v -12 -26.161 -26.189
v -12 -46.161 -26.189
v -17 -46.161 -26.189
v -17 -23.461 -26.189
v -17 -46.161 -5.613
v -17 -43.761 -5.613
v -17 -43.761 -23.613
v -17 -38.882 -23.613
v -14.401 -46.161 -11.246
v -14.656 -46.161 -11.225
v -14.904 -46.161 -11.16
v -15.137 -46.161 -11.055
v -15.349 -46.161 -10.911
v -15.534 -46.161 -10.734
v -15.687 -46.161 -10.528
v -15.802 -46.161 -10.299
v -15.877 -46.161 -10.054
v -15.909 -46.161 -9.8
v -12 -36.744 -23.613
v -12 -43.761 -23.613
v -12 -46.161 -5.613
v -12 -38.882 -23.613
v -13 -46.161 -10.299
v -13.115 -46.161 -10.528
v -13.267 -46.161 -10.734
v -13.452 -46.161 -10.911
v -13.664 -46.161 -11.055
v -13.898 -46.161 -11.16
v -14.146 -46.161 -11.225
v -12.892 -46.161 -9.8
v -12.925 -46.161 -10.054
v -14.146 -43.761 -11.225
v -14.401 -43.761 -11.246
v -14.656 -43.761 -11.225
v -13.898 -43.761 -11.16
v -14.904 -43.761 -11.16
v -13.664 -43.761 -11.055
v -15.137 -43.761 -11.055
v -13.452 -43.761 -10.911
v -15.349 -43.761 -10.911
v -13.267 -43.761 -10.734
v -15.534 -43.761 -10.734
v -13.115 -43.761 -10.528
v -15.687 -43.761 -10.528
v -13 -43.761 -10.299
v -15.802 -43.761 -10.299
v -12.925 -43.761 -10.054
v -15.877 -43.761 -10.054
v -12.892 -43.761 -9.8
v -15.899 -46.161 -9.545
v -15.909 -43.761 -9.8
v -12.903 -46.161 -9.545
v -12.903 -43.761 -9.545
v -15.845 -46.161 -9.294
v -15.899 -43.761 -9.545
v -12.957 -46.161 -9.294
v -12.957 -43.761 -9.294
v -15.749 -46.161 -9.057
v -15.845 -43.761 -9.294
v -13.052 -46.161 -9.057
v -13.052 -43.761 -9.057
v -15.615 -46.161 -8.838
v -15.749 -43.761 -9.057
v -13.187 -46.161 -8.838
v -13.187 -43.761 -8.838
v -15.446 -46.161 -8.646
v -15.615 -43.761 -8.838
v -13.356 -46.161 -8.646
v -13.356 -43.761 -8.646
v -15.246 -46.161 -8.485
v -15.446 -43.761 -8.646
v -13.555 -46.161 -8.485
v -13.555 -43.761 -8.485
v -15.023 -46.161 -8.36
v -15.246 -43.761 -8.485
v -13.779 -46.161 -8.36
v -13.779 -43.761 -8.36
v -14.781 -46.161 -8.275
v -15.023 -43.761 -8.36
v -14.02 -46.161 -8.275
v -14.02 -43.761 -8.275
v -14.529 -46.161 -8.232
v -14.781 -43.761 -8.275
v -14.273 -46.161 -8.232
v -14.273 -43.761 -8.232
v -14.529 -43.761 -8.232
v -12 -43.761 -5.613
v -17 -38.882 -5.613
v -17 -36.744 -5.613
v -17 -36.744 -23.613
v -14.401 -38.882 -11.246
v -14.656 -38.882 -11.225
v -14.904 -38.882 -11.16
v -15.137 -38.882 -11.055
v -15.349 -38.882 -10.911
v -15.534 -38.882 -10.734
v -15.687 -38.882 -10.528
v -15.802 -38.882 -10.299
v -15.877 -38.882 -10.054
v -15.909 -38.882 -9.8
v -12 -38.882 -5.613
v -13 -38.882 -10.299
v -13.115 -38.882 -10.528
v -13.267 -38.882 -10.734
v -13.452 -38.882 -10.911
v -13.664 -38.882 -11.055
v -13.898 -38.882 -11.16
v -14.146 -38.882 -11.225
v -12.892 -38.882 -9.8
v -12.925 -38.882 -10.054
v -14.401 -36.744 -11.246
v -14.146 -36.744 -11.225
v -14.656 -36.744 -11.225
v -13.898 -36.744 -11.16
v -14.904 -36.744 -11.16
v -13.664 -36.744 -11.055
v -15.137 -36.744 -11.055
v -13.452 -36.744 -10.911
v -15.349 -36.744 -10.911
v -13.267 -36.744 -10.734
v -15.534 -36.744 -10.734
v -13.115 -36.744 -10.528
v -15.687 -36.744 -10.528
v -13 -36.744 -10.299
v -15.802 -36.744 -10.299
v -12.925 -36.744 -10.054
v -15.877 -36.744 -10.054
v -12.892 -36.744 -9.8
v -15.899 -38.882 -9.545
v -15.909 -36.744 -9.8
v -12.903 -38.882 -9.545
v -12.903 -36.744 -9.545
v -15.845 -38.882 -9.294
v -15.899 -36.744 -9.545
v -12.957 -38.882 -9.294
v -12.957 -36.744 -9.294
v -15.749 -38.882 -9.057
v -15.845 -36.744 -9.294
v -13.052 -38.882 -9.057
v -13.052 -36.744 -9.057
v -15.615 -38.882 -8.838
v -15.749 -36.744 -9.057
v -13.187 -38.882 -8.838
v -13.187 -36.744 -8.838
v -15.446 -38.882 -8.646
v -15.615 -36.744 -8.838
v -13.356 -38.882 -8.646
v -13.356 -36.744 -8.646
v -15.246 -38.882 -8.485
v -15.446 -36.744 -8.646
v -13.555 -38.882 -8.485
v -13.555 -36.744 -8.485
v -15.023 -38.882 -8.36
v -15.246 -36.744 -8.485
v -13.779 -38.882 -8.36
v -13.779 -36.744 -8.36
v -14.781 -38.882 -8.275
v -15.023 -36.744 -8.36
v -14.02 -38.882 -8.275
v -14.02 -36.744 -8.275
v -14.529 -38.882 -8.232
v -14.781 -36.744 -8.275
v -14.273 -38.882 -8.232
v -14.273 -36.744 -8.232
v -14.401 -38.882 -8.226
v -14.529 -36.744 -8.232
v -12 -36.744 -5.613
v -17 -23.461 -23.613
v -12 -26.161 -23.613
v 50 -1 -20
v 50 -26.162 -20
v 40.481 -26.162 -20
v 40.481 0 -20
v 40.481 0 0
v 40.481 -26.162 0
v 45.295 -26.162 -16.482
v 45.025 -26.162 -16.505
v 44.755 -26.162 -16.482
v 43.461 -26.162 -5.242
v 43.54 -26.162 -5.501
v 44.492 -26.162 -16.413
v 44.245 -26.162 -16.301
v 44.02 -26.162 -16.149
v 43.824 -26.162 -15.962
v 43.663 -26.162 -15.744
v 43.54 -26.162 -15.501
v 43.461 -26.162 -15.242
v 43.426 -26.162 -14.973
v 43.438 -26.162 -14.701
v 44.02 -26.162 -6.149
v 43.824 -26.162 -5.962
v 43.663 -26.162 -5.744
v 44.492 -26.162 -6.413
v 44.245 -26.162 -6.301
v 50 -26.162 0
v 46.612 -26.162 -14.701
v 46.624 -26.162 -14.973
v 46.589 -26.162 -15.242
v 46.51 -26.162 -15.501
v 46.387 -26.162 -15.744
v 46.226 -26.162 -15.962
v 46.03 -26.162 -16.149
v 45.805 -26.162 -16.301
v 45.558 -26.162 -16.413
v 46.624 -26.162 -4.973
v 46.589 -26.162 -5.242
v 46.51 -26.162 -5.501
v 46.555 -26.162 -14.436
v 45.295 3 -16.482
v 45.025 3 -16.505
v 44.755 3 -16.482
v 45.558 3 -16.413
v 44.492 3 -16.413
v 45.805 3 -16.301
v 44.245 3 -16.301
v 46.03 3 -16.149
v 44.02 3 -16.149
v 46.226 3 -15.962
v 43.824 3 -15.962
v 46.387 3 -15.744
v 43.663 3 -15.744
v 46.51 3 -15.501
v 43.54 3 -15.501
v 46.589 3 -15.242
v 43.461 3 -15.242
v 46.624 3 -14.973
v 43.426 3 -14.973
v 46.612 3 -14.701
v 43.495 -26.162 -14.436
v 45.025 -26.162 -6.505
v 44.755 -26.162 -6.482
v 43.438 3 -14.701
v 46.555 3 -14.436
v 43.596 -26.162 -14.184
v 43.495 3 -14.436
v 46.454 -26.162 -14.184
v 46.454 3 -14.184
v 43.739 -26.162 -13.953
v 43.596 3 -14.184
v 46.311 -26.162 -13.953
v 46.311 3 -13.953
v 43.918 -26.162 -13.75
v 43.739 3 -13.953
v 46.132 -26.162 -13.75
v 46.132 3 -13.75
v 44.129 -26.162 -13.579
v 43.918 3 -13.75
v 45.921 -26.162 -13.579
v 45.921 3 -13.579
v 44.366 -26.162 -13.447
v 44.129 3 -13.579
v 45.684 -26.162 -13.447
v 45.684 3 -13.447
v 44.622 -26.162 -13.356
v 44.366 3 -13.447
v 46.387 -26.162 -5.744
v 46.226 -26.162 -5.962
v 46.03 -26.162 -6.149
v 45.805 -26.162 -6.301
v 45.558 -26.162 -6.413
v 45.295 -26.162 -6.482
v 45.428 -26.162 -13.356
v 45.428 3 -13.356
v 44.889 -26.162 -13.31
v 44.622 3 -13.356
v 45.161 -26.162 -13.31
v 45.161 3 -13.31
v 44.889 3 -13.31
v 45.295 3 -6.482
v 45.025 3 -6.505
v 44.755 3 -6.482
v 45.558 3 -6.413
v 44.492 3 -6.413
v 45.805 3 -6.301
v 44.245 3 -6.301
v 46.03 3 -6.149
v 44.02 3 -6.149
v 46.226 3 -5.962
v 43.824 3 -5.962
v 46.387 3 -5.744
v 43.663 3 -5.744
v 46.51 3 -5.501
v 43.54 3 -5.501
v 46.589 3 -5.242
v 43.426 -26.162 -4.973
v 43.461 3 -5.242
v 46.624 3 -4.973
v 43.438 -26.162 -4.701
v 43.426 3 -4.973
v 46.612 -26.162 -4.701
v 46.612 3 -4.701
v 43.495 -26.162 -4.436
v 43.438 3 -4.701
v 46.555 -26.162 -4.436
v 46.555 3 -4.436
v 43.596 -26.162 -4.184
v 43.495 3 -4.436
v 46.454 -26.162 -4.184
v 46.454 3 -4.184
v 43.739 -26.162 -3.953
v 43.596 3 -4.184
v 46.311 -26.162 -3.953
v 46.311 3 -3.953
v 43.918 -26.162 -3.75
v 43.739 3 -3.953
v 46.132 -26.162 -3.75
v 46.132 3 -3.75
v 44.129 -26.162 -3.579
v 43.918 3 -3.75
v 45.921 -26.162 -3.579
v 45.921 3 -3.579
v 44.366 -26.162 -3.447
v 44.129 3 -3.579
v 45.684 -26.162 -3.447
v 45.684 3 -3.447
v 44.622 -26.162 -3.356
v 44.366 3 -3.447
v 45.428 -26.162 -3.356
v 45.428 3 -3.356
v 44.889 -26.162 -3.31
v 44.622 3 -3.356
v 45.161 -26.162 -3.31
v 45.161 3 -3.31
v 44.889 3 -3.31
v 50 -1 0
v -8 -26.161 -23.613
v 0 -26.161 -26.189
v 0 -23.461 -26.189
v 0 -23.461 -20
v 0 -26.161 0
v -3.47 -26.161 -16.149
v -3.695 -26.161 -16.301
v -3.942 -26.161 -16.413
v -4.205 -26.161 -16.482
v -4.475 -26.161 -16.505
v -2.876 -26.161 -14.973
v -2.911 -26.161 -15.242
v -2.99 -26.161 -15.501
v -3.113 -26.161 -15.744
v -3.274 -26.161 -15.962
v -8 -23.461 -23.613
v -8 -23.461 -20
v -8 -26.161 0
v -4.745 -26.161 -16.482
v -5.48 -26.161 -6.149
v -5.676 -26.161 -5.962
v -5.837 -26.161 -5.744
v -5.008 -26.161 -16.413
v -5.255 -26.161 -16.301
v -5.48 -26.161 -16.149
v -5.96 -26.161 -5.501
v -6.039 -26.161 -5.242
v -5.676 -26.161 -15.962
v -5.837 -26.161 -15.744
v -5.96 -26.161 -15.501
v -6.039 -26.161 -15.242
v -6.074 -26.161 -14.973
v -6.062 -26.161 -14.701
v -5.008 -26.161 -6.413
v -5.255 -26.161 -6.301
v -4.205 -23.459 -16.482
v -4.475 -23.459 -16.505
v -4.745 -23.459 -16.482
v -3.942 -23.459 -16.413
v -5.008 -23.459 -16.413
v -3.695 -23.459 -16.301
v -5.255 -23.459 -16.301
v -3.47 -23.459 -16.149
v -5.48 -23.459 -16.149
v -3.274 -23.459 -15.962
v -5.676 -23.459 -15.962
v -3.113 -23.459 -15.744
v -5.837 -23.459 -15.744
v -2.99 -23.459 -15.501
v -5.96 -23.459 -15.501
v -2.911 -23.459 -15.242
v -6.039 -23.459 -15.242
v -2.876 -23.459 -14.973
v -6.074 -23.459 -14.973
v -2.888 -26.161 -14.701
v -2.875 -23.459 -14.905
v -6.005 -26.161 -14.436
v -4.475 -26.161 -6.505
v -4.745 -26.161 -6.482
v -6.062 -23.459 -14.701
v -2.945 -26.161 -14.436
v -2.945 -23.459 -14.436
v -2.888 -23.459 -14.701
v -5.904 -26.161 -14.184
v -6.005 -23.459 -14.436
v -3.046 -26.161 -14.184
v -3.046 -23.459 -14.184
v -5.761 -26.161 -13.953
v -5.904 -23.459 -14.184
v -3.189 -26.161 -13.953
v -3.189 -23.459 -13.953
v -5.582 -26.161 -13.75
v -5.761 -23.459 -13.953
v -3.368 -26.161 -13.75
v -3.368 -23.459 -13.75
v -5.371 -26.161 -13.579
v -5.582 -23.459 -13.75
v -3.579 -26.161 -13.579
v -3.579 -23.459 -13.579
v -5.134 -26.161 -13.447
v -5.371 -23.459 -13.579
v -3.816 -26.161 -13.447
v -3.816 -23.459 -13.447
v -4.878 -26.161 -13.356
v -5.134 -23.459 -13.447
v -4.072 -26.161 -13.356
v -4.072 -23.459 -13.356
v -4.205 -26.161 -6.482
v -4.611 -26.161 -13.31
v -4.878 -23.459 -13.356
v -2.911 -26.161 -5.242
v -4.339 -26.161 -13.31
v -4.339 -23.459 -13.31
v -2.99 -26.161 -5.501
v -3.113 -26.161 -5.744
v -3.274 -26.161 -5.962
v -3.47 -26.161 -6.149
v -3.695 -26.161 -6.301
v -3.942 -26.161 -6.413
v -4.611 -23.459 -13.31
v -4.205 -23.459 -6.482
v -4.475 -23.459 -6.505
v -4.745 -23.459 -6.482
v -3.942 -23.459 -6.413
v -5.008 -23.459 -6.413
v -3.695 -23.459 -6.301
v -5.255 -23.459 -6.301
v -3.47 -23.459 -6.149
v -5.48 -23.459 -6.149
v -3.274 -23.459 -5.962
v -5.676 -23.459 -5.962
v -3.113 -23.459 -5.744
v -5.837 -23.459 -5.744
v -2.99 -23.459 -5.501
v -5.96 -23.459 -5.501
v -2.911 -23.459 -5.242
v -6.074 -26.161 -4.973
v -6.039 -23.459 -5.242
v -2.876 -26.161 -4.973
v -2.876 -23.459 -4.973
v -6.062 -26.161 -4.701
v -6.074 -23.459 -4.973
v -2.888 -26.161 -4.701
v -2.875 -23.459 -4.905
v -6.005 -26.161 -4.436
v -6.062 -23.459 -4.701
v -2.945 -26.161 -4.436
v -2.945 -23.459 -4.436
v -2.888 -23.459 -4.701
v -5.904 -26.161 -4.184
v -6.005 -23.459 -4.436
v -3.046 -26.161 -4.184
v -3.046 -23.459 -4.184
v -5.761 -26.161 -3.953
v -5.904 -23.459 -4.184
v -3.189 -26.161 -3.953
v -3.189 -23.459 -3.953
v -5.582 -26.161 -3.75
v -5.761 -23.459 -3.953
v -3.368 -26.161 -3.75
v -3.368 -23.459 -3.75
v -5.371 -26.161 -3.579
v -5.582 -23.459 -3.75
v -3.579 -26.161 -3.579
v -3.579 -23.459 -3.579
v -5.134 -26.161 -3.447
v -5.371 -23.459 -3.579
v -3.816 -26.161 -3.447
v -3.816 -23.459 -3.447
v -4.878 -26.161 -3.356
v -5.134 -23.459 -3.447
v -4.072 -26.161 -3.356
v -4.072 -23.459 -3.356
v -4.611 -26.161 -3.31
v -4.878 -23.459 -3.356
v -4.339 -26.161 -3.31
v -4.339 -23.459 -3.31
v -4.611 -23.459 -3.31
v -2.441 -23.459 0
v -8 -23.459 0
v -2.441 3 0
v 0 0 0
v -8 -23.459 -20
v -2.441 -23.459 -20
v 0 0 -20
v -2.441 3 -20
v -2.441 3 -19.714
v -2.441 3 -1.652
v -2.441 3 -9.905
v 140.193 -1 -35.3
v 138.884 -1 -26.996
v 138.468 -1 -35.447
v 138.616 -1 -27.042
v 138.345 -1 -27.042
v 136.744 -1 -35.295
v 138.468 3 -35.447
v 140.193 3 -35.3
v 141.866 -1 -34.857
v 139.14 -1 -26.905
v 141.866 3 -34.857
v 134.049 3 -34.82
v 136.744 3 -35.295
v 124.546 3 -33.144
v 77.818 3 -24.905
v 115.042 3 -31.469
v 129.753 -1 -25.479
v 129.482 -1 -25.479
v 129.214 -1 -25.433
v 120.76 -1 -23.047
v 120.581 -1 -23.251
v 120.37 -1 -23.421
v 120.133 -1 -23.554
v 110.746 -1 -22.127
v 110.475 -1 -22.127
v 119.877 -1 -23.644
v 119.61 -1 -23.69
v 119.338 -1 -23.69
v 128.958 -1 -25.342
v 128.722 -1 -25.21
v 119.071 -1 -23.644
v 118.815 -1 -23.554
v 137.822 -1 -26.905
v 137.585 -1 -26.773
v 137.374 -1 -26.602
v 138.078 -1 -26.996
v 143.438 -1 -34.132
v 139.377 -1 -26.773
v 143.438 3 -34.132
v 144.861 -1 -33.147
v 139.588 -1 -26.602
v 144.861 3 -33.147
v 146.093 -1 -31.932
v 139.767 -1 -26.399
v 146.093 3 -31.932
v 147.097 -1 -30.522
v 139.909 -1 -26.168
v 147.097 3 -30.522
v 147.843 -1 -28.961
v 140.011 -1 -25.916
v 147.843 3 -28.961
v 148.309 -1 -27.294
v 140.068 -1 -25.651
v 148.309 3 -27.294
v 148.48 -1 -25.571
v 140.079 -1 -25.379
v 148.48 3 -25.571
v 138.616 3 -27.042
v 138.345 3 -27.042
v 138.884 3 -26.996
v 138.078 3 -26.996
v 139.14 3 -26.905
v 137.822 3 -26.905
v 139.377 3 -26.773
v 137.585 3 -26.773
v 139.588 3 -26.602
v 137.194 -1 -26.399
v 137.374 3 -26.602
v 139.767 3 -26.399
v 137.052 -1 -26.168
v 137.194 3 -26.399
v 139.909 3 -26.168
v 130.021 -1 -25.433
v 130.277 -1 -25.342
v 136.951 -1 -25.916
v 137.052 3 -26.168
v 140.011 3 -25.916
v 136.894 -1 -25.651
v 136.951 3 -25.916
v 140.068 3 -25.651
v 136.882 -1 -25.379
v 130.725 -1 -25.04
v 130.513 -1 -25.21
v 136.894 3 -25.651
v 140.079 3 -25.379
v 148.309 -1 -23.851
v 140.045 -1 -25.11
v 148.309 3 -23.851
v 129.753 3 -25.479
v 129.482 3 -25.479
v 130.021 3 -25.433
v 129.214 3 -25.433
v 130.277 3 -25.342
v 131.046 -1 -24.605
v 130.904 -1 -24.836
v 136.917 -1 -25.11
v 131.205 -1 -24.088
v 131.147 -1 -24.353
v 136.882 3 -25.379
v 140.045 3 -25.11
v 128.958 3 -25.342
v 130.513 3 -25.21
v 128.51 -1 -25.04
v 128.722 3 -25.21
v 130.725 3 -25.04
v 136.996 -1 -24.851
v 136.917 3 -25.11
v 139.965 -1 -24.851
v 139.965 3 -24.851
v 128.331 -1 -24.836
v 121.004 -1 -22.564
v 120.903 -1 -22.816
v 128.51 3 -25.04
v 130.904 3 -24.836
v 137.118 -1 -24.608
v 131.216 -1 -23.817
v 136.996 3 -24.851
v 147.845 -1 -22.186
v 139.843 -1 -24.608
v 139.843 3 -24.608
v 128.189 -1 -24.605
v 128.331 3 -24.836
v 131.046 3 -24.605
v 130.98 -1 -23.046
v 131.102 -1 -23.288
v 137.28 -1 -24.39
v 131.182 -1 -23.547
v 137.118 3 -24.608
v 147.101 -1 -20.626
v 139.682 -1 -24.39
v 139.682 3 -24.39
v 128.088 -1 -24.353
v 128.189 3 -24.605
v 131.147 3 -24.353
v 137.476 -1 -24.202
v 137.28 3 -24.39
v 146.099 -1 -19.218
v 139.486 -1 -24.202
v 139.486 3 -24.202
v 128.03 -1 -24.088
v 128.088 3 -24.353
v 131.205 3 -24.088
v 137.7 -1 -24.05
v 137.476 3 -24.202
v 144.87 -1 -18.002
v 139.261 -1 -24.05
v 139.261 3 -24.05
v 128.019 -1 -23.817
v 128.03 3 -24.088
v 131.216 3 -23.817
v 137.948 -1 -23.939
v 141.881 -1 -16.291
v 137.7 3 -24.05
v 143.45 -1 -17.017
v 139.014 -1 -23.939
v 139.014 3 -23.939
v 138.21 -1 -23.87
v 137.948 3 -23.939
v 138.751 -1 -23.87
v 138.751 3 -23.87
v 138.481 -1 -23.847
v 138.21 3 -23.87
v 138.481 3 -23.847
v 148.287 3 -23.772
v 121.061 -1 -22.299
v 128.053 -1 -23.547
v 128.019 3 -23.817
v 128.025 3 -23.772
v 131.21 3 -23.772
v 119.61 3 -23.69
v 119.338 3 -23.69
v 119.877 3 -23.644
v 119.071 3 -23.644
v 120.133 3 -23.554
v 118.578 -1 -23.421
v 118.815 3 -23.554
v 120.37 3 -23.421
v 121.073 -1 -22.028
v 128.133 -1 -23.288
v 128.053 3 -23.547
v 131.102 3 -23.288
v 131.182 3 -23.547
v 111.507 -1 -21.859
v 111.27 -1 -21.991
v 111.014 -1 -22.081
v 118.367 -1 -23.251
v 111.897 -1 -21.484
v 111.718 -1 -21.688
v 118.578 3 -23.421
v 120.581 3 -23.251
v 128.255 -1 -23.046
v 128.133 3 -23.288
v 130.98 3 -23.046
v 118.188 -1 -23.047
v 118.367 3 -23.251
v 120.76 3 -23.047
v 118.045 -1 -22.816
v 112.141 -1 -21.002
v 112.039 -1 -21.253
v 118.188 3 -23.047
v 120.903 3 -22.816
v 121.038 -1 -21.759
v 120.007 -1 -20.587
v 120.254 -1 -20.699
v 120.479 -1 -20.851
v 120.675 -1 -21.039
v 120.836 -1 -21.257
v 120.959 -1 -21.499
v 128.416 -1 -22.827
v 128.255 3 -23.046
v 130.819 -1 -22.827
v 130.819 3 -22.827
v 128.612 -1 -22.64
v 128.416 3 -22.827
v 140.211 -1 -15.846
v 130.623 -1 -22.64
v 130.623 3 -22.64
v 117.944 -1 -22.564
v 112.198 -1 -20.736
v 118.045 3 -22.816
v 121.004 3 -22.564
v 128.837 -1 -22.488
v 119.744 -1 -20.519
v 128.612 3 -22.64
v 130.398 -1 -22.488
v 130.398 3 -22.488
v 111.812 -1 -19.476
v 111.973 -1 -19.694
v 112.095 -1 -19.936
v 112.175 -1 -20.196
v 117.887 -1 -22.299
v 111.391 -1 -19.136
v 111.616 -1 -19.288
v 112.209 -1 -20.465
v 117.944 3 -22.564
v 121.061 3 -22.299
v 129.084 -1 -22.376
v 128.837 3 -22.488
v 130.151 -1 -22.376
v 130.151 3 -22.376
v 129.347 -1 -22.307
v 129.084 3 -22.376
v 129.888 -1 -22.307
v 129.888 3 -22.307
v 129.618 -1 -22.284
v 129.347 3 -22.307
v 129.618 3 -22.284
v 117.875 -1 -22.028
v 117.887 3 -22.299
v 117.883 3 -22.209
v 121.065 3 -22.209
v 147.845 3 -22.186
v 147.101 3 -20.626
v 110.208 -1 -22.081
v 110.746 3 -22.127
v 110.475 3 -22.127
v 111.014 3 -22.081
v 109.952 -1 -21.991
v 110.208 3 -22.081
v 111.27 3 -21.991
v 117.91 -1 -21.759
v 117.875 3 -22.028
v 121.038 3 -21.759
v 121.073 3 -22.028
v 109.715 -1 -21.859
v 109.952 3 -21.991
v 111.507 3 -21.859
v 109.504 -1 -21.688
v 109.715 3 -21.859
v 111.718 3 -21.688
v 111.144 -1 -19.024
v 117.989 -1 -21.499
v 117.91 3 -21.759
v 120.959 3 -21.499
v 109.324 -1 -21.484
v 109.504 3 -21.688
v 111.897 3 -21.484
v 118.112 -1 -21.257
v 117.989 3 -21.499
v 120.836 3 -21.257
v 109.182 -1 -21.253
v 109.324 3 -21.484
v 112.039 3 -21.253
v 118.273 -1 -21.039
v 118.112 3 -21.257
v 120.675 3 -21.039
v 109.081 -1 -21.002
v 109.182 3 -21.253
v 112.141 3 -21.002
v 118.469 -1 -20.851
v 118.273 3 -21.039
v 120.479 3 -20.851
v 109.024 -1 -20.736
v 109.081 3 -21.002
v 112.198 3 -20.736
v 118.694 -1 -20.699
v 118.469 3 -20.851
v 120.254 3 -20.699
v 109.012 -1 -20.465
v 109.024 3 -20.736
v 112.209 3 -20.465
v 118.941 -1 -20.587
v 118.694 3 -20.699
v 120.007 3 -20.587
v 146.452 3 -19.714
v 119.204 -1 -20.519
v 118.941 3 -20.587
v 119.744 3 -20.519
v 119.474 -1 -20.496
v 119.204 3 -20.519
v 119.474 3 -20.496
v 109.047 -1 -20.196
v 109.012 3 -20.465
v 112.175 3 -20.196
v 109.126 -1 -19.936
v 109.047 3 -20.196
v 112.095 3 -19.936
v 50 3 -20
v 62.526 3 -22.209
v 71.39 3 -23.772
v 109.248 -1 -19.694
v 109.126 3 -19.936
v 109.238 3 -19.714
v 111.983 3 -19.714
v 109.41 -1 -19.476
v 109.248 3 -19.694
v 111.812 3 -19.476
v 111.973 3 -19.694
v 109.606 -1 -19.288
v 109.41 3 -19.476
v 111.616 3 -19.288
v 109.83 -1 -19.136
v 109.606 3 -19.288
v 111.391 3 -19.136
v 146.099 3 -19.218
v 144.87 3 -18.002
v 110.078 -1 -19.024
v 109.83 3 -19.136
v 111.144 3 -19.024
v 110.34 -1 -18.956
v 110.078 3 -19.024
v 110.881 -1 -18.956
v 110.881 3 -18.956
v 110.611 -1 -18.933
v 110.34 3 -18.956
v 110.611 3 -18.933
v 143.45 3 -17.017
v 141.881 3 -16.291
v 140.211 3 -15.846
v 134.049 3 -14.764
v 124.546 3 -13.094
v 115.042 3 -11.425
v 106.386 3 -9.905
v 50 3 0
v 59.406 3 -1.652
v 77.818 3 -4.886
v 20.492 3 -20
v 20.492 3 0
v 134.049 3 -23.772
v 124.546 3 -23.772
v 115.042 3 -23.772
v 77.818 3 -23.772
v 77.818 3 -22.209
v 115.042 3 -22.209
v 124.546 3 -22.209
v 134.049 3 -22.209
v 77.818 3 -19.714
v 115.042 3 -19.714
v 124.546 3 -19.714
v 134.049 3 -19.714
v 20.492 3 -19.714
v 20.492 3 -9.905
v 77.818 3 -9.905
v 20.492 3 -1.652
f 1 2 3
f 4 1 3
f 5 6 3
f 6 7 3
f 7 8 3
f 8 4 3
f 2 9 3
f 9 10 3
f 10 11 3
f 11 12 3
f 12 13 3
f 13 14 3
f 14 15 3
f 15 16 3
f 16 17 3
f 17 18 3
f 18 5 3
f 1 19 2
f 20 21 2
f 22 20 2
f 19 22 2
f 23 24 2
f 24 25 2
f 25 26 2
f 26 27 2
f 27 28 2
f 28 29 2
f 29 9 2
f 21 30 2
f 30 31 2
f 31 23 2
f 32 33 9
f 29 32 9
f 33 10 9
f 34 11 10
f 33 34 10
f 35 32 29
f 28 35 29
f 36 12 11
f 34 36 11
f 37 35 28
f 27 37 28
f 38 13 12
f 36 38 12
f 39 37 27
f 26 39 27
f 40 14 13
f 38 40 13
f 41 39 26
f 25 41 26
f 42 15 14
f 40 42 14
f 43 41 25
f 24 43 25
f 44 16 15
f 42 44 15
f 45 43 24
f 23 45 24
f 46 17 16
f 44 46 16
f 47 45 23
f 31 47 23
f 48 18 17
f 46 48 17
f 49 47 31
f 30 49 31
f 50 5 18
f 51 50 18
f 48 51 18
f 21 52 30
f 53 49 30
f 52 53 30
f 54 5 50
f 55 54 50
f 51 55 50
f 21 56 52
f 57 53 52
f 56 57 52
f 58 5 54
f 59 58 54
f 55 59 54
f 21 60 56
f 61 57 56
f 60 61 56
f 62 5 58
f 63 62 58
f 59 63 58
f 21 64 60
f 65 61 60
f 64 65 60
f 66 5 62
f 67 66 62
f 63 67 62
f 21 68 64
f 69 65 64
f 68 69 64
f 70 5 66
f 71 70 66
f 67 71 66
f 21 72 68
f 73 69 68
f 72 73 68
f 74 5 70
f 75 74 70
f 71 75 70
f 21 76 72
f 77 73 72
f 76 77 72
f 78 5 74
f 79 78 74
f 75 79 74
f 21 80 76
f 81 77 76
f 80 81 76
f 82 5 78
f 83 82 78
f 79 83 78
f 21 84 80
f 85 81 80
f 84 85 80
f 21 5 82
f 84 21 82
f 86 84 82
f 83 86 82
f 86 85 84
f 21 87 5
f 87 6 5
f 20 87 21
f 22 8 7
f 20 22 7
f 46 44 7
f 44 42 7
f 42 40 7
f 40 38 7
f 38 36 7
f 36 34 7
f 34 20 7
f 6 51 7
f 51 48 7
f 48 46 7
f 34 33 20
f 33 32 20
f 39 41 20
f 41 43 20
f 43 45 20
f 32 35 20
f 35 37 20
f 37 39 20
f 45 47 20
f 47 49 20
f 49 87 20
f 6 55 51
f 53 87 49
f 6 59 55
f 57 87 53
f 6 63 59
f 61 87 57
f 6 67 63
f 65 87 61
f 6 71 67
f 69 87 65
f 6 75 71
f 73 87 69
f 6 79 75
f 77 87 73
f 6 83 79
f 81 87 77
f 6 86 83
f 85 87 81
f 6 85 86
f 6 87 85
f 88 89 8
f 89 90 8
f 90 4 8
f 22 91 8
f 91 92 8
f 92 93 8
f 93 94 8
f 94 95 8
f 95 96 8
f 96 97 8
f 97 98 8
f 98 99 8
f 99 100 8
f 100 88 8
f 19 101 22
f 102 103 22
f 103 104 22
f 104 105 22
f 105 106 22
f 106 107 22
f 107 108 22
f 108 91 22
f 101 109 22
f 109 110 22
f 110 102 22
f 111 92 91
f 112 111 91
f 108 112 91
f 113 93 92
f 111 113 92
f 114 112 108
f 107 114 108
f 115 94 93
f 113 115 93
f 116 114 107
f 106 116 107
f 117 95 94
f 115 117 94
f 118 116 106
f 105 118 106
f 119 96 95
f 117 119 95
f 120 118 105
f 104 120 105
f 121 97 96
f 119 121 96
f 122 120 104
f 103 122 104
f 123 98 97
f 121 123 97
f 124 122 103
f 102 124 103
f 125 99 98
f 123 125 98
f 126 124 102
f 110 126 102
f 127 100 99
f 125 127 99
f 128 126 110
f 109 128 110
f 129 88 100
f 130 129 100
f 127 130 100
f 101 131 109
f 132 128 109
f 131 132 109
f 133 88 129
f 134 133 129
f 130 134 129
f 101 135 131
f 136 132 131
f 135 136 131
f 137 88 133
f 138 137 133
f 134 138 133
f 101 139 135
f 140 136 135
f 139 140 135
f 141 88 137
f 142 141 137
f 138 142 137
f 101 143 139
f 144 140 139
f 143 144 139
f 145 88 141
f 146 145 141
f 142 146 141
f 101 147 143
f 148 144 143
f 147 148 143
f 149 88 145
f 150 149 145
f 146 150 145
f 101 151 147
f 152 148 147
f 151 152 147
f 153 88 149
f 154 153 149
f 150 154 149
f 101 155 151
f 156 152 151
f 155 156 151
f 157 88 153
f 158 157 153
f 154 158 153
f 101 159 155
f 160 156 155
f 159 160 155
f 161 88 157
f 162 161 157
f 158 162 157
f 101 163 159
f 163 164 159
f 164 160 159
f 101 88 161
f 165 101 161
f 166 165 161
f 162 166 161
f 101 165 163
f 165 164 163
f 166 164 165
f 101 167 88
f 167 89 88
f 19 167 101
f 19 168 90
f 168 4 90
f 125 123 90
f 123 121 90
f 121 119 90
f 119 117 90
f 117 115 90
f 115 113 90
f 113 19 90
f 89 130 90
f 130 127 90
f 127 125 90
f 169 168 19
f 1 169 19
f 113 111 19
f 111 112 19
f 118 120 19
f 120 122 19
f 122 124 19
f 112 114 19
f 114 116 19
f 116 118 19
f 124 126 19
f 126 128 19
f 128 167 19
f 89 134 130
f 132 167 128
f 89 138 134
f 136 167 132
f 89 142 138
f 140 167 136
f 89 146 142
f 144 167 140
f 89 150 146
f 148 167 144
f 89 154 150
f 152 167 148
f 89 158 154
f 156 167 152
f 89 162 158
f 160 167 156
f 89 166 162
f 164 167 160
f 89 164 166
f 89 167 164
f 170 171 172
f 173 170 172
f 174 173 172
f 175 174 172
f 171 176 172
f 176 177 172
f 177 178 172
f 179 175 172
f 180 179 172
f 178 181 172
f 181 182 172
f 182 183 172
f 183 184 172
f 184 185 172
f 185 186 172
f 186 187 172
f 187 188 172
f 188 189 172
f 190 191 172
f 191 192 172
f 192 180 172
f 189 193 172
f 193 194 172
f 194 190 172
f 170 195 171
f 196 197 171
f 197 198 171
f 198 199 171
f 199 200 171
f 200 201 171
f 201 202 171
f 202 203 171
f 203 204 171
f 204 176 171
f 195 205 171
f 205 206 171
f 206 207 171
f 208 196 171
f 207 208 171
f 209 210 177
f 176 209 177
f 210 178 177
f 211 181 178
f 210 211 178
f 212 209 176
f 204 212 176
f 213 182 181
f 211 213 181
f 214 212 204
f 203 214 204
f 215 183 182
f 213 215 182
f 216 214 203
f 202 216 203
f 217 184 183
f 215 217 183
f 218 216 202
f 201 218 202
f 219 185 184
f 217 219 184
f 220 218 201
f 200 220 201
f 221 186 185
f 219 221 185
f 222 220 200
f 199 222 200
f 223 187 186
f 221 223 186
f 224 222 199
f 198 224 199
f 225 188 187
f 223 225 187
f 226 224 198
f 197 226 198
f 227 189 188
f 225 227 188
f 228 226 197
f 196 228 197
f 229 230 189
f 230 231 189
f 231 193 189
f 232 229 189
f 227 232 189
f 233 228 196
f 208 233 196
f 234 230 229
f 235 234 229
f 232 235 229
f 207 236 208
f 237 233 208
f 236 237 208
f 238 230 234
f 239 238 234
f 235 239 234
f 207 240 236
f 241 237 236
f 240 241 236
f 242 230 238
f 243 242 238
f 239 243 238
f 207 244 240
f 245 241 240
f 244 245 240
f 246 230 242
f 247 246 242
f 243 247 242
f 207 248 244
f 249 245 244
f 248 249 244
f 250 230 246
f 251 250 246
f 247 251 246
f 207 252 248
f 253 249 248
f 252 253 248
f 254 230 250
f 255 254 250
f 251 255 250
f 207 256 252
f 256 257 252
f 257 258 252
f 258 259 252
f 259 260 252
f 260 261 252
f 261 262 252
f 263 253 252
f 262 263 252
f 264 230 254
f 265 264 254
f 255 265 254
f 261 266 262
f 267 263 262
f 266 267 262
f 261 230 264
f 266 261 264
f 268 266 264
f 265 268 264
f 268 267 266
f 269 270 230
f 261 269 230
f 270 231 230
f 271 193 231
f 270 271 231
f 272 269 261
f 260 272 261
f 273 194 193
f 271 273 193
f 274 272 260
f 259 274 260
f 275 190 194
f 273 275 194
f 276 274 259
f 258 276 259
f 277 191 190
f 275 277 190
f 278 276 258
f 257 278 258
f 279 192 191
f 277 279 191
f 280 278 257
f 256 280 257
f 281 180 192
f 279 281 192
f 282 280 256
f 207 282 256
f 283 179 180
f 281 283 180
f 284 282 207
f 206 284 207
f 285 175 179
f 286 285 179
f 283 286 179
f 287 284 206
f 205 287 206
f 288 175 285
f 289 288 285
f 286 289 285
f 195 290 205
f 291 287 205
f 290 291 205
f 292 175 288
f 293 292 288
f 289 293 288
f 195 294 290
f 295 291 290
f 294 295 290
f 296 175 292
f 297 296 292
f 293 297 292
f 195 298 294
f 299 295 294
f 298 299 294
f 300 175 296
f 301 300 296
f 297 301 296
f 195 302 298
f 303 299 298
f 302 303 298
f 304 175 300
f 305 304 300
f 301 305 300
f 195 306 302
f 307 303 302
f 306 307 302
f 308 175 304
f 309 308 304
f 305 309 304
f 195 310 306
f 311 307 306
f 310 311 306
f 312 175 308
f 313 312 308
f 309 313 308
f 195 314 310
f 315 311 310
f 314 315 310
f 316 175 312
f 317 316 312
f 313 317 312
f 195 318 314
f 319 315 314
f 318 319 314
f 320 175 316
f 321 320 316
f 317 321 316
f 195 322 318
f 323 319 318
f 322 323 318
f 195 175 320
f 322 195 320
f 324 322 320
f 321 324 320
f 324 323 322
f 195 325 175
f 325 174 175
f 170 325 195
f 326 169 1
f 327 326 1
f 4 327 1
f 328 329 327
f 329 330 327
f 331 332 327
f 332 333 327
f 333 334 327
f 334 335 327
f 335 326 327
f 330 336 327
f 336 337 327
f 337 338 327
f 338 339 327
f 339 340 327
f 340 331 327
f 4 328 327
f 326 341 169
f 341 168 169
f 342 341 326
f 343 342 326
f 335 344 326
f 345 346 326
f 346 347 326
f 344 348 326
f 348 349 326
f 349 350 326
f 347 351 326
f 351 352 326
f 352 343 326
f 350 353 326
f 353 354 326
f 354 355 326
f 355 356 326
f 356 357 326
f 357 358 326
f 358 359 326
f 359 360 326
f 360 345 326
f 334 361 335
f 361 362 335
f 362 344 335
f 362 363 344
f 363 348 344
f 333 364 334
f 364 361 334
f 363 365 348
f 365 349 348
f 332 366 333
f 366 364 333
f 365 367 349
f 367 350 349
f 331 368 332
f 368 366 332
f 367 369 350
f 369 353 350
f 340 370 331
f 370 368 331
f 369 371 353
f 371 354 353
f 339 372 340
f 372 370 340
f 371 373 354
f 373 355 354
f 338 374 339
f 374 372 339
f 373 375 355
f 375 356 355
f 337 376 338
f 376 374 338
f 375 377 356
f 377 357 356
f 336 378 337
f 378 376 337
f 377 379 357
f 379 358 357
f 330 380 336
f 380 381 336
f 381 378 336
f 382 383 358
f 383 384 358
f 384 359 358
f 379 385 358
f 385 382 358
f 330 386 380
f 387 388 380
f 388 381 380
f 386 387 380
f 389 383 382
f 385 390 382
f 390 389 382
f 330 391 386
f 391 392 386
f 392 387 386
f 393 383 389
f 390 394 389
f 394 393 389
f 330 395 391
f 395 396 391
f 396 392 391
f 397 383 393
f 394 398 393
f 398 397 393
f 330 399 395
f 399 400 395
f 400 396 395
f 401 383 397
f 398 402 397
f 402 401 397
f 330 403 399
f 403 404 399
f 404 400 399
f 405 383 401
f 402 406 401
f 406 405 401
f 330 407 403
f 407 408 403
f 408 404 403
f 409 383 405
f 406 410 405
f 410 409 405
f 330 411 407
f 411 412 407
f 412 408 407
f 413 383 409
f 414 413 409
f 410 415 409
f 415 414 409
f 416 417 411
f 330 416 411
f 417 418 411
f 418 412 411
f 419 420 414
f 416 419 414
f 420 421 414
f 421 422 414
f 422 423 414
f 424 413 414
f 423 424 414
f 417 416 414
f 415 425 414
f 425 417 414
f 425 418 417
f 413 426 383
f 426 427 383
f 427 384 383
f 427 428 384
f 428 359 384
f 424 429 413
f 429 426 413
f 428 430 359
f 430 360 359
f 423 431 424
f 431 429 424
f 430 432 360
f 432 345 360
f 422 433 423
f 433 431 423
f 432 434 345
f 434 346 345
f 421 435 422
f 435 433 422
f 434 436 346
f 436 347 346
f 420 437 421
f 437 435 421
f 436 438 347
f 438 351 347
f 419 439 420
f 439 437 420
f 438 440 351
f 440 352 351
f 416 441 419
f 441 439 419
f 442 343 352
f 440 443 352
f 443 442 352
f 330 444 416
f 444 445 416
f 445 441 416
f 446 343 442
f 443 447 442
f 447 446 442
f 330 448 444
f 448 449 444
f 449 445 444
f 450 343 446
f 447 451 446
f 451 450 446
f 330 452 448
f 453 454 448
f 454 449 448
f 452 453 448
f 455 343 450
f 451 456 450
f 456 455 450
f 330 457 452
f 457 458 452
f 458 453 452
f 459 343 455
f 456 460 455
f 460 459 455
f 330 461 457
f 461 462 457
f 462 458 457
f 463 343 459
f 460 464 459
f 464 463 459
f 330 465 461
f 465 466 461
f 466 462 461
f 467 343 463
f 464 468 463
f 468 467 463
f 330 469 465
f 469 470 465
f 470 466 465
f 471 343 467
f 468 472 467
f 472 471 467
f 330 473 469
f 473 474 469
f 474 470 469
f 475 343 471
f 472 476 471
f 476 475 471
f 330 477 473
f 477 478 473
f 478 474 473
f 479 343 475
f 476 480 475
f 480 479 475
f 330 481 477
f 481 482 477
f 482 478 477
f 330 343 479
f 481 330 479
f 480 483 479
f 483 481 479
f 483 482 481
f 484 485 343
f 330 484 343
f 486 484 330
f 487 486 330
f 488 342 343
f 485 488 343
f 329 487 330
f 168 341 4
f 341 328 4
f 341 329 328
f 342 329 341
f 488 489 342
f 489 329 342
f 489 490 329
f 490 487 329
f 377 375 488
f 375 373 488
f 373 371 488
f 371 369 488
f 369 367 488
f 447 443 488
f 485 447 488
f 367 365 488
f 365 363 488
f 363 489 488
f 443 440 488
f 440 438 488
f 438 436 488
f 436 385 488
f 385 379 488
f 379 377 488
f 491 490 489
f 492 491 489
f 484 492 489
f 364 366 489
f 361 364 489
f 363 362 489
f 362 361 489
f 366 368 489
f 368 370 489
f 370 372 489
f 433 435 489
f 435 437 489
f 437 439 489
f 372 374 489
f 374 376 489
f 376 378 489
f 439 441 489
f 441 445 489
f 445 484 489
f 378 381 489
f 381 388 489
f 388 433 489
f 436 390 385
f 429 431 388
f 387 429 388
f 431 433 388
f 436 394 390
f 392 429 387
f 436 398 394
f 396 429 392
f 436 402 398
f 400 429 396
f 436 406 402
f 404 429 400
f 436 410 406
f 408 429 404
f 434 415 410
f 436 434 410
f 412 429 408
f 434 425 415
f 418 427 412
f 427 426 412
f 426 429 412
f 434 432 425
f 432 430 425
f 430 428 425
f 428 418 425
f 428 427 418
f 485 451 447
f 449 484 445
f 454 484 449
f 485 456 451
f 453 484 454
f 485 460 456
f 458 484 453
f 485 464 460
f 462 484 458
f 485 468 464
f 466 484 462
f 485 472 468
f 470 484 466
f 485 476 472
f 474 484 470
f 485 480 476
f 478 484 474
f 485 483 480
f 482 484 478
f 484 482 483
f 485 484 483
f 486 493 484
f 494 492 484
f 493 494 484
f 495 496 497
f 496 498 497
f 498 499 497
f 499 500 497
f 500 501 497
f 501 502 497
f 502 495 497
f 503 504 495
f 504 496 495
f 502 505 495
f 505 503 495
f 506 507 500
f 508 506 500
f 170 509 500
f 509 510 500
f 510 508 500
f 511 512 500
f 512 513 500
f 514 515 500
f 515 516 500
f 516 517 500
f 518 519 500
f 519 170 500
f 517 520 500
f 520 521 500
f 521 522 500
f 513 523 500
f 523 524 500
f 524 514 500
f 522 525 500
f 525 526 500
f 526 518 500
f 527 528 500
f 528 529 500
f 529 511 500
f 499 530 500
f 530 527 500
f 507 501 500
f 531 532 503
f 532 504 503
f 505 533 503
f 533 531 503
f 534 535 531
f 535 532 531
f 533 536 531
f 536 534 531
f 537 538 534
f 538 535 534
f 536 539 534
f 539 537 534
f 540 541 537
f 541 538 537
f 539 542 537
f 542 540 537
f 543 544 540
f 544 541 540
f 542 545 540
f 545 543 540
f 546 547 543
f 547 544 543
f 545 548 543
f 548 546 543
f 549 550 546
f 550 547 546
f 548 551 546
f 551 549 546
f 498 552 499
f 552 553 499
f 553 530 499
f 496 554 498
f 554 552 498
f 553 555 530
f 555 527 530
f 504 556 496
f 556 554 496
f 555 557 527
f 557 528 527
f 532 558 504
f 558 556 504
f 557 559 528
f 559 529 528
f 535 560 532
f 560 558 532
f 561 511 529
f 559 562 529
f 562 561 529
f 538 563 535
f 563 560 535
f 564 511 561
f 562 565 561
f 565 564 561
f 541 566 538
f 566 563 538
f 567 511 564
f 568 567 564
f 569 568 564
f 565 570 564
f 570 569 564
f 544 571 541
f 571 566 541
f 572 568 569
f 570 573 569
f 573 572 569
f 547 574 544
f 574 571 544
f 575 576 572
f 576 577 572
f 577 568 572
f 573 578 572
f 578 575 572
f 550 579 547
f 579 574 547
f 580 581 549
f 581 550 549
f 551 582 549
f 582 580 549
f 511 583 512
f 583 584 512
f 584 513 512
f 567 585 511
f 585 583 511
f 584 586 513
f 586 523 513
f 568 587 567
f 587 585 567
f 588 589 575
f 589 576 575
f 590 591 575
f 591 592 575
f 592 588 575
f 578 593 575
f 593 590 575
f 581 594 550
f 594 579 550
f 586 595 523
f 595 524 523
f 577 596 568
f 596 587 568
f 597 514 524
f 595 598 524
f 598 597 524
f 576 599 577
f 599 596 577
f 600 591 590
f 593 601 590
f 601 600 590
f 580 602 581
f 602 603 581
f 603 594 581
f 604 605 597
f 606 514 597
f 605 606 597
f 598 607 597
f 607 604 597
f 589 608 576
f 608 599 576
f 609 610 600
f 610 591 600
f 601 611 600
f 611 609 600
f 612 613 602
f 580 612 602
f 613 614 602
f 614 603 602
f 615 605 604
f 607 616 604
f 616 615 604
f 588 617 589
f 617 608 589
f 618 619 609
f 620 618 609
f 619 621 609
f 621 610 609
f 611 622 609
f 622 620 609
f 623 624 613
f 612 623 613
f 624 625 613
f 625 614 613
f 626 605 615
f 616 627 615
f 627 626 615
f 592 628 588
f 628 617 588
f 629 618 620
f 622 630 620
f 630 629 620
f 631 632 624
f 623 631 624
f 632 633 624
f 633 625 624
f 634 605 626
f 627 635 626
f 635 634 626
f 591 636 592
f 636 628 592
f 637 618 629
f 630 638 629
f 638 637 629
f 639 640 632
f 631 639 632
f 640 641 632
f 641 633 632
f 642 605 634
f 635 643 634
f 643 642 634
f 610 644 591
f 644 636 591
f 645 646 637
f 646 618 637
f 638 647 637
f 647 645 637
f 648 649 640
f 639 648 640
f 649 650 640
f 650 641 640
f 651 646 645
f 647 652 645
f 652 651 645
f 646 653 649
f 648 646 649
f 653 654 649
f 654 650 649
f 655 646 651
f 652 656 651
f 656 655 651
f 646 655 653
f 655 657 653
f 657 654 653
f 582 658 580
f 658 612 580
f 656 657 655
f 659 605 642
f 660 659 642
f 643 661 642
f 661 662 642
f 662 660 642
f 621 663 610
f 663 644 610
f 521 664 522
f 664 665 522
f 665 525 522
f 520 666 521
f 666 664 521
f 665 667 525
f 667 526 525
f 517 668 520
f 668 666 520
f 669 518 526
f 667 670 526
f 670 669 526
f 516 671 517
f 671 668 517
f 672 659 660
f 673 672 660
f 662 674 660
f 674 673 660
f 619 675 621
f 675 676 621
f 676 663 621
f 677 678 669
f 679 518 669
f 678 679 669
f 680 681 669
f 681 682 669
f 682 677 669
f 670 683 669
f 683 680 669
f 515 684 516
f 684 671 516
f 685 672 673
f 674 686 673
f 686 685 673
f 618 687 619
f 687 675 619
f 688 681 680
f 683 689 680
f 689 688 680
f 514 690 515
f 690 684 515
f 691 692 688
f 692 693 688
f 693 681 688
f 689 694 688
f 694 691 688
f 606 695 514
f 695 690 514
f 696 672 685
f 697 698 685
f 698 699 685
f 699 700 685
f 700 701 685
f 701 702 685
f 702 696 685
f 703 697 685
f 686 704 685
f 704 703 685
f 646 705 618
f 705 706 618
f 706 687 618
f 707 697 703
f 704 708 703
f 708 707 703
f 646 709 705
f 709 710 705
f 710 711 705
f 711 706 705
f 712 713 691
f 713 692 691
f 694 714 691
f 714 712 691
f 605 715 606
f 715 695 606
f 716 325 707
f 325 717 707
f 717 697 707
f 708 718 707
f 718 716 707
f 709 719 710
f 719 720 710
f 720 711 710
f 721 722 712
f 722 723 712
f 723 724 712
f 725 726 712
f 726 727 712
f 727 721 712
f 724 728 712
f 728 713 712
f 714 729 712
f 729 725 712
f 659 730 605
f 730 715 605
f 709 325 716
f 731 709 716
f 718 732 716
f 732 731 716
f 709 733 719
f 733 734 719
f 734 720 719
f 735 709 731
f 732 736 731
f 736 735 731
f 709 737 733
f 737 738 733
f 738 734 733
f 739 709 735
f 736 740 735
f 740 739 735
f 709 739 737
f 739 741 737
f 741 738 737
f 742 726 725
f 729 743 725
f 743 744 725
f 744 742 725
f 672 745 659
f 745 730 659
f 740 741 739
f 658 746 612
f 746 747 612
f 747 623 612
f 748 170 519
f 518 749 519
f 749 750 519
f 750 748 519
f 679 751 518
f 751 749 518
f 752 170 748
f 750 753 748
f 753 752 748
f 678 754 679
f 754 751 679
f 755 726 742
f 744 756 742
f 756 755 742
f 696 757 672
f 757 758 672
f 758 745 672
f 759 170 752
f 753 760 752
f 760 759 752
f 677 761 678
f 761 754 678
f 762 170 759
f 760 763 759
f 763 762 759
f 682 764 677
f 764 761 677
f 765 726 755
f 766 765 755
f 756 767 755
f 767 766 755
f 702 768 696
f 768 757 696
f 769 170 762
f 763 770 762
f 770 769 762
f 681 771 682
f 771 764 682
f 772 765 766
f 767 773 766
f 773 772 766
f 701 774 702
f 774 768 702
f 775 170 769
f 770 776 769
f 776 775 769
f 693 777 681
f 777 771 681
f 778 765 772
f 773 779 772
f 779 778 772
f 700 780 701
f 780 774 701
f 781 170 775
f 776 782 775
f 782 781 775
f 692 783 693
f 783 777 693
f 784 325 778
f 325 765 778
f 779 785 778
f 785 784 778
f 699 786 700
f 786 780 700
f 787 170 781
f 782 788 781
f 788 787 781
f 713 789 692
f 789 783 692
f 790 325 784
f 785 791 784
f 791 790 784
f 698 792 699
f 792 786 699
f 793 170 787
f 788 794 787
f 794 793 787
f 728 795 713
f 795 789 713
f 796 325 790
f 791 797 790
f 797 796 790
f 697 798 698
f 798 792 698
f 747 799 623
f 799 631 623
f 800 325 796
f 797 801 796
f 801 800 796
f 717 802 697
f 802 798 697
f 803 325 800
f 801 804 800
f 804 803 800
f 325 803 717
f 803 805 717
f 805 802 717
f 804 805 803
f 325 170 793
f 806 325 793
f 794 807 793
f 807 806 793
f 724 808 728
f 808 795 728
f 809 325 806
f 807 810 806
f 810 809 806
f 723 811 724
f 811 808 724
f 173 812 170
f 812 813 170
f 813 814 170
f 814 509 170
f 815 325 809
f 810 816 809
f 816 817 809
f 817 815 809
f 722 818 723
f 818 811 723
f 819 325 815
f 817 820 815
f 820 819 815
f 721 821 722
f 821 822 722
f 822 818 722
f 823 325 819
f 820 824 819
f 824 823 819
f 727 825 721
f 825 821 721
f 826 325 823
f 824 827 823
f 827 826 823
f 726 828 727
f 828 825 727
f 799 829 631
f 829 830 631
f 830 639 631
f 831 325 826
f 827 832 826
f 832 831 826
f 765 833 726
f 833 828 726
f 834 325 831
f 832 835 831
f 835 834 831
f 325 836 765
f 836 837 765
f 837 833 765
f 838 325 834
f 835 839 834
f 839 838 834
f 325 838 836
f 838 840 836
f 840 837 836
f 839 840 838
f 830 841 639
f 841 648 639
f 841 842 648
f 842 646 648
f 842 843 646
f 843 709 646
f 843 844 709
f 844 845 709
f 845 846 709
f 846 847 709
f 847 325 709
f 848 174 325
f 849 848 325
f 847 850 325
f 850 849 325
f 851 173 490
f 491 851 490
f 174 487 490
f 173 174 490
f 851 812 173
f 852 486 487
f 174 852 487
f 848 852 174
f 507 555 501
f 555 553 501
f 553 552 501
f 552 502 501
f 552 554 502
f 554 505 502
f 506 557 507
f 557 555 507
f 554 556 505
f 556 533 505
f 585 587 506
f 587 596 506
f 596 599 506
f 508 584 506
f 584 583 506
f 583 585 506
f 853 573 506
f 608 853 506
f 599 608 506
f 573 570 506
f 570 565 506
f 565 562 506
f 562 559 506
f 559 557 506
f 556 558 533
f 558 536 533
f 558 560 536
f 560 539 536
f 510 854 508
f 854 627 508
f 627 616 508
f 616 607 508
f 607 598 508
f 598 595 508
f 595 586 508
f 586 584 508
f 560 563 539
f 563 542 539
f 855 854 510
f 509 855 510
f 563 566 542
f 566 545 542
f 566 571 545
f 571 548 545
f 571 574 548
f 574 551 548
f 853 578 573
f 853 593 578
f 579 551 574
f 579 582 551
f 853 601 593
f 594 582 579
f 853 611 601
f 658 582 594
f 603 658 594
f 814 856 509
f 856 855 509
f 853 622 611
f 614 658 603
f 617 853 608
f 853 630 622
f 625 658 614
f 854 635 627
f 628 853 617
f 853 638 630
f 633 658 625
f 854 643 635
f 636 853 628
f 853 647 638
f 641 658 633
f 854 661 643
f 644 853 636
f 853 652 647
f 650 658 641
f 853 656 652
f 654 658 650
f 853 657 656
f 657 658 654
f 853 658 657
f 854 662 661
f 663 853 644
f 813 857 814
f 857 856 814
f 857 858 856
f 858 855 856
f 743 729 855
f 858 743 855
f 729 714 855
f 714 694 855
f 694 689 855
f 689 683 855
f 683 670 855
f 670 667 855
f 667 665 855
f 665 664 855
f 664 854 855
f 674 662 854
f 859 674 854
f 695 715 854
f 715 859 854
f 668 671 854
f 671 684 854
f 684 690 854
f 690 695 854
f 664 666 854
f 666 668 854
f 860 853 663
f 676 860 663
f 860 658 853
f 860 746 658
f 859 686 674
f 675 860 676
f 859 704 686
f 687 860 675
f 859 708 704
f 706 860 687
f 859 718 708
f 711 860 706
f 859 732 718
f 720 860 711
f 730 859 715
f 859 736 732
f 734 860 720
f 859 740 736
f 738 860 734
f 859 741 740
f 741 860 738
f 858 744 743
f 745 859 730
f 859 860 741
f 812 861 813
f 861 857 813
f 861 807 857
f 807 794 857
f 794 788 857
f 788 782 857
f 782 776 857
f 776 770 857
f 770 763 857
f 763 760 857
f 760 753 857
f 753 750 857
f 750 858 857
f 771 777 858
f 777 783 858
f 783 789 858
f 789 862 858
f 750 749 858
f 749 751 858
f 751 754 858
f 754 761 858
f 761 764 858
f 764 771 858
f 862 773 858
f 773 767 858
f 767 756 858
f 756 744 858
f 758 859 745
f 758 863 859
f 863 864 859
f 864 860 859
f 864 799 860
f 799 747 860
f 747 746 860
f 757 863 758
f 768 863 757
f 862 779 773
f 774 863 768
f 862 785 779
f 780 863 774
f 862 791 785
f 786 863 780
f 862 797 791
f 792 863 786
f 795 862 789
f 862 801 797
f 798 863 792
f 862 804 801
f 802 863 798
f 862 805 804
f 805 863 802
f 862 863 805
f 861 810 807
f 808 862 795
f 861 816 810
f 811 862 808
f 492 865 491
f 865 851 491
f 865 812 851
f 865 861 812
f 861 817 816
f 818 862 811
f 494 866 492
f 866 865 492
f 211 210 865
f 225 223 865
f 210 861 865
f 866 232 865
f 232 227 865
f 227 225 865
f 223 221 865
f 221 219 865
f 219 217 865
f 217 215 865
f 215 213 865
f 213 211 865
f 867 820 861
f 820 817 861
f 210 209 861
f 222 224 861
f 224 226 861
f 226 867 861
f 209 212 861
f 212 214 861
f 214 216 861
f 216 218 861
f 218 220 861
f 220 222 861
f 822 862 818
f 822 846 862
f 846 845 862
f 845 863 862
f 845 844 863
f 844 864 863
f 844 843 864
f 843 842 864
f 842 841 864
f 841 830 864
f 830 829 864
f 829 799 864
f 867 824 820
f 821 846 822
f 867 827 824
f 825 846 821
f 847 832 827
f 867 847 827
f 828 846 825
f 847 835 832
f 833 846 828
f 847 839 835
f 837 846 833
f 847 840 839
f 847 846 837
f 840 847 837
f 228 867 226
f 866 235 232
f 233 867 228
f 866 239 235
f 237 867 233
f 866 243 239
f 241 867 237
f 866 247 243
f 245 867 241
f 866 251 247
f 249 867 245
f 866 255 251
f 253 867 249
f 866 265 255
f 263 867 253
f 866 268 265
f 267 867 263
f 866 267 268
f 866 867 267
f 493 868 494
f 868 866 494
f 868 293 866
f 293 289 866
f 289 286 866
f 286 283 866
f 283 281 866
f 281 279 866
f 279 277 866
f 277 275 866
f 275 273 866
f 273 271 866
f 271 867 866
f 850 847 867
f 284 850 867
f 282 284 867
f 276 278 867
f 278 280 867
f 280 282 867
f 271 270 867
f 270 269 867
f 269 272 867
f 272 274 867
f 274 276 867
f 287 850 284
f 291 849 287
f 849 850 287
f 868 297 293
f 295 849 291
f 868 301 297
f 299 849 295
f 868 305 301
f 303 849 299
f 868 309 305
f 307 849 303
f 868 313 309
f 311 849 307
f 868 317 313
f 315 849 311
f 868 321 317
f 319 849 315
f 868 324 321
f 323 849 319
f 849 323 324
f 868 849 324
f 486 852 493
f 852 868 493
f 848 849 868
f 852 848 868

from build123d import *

# Parameters (mm, degrees)
SKETCH1_W                = 135
SKETCH1_H                = 20
BOSS_EXTRUDE1_DEPTH      = 3
BOSS_EXTRUDE2_START      = -20
BOSS_EXTRUDE2_DEPTH      = 20
SKETCH5_R                = 1.6
CUT_EXTRUDE1_DEPTH       = 5
BOSS_EXTRUDE3_DEPTH      = 2.7
SKETCH7_W                = 5
SKETCH7_H                = 2.576431393
BOSS_EXTRUDE4_DEPTH      = 20
SKETCH9_W                = 5
SKETCH9_H                = 2.400677448
SKETCH9_H_2              = 2.137863312
BOSS_EXTRUDE5_DEPTH      = 18
SKETCH10_R               = 1.51
CUT_EXTRUDE2_DEPTH       = 46
SKETCH11_W               = 87
SKETCH11_H               = 20
CUT_EXTRUDE3_DEPTH       = 7
BOSS_EXTRUDE7_DEPTH      = 26.162
BOSS_EXTRUDE7_DEPTH_BACK = 3
SKETCH12_W               = 9.518804698
SKETCH12_H               = 20
SKETCH13_R               = 1.6
CUT_EXTRUDE4_DEPTH       = 36.162
BOSS_EXTRUDE8_DEPTH      = 4
FILLET1_R                = 10
SKETCH18_R               = 1.6
CUT_EXTRUDE6_DEPTH       = 4


# Read off the part's stored shape, not the designer's step: Boss-Extrude2
with BuildPart() as part:
    # Sketch1 → Boss-Extrude1 (new body)
    with BuildSketch(Plane(origin=(0, 0, 0), x_dir=(1, 0, 0), z_dir=(0, 1, 0))):
        with Locations((67.5, 10)):
            Rectangle(SKETCH1_W, SKETCH1_H)
    extrude(amount=BOSS_EXTRUDE1_DEPTH)


with BuildPart() as body_2:
    # Boss-Extrude2 outline → Boss-Extrude2 (new body)
    with BuildSketch(Plane(origin=(0, 0, -20), x_dir=(-1, 0, 0), z_dir=(0, 0, -1)).offset(BOSS_EXTRUDE2_START)):
        Polygon((-135, 0), (0, 0), (0, -26.161397266), (8, -26.161397266), (8, -23.458863774), (2.440744198, -23.458863774), (2.440744198, 3), (-135, 3), align=None)
    extrude(amount=BOSS_EXTRUDE2_DEPTH)

    # Sketch5 → Cut-Extrude1 (cut)
    with BuildSketch(Plane(origin=(0, -26.161397266, 0), x_dir=(-1, 0, 0), z_dir=(0, -1, 0))):
        with Locations(Location((4.475005096, 14.904630263, 0), (0, 0, 90))):
            Circle(SKETCH5_R)
        with Locations(Location((4.475005096, 4.904630263, 0), (0, 0, 90))):
            Circle(SKETCH5_R)
    extrude(amount=-CUT_EXTRUDE1_DEPTH, mode=Mode.SUBTRACT)

    # Sketch6 → Boss-Extrude3 (add)
    with BuildSketch(Plane(origin=(0, -26.161397266, 0), x_dir=(-1, 0, 0), z_dir=(0, -1, 0))):
        Polygon((0, 26.189005721), (0, 20), (8, 20), (8, 23.612574328), (17, 23.612574328), (17, 26.189005721), align=None)
    extrude(amount=-BOSS_EXTRUDE3_DEPTH)

    # Sketch7 → Boss-Extrude4 (add)
    with BuildSketch(Plane.XZ.offset(26.161397266)):
        with Locations((-14.5, -24.900790025)):
            Rectangle(SKETCH7_W, SKETCH7_H)
    extrude(amount=BOSS_EXTRUDE4_DEPTH)

    # Sketch9 → Boss-Extrude5 (add)
    with BuildSketch(Plane.XY.offset(-23.612574328)):
        with Locations((-14.5, -44.961058542)):
            Rectangle(SKETCH9_W, SKETCH9_H)
        with Locations((-14.5, -37.813107102)):
            Rectangle(SKETCH9_W, SKETCH9_H_2)
    extrude(amount=BOSS_EXTRUDE5_DEPTH)

    # Sketch10 → Cut-Extrude2 (cut)
    with BuildSketch(Plane(origin=(0, -46.161397266, 0), x_dir=(-1, 0, 0), z_dir=(0, -1, 0))):
        with Locations(Location((14.400768804, 9.736347936, 0), (0, 0, 90))):
            Circle(SKETCH10_R)
    extrude(amount=-CUT_EXTRUDE2_DEPTH, mode=Mode.SUBTRACT)


with BuildPart() as cut_extrude3_tool:
    # Sketch11 → Cut-Extrude3 (new body)
    with BuildSketch(Plane.XZ):
        with Locations((91.5, -10)):
            Rectangle(SKETCH11_W, SKETCH11_H)
    extrude(amount=-CUT_EXTRUDE3_DEPTH)


with BuildPart() as part_1:
    add(part.part)

    # Cut-Extrude3: cut by cut_extrude3_tool
    add(cut_extrude3_tool.part, mode=Mode.SUBTRACT)



with BuildPart() as body_2_1:
    add(body_2.part)

    # Cut-Extrude3: cut by cut_extrude3_tool
    add(cut_extrude3_tool.part, mode=Mode.SUBTRACT)


with BuildPart() as part_2:
    add(part_1.part)

    add(body_2_1.part)  # Boss-Extrude7 merges body 2
    # Sketch12 → Boss-Extrude7 (add, two sides: drawn at the far end of the back side and taken through both)
    with BuildSketch(Plane(origin=(0, 0, 0), x_dir=(-1, 0, 0), z_dir=(0, -1, 0)).offset(-BOSS_EXTRUDE7_DEPTH_BACK)):
        with Locations((-45.240597651, 10)):
            Rectangle(SKETCH12_W, SKETCH12_H)
    extrude(amount=BOSS_EXTRUDE7_DEPTH + BOSS_EXTRUDE7_DEPTH_BACK)

    # Sketch13 → Cut-Extrude4 (cut)
    with BuildSketch(Plane(origin=(0, -26.162, 0), x_dir=(-1, 0, 0), z_dir=(0, -1, 0))):
        with Locations(Location((-45.024994904, 4.904630263, 0), (0, 0, 90))):
            Circle(SKETCH13_R)
        with Locations(Location((-45.024994904, 14.904630263, 0), (0, 0, 90))):
            Circle(SKETCH13_R)
    extrude(amount=-CUT_EXTRUDE4_DEPTH, mode=Mode.SUBTRACT)

    # Sketch14 → Boss-Extrude8 (add)
    with BuildSketch(Plane(origin=(0, 3, 0), x_dir=(1, 0, 0), z_dir=(0, 1, 0))):
        Polygon((50, 20), (50, 0), (148.480775301, 17.298817767), (148.480775301, 37.364817767), align=None)
    extrude(amount=-BOSS_EXTRUDE8_DEPTH)

    # Fillet1
    # the kernel refuses this fillet: 10 mm, written as the material it takes off along each edge
    with BuildSketch(Plane(origin=(148.480775301, 23.991341286, -17.298817767), x_dir=(-0.9849204245014849, 0, 0.1730079691800782), z_dir=(0, -1, 0))) as fillet1_piece_1:
        with BuildLine():
            CenterArc((FILLET1_R * 0.83965365145, FILLET1_R), FILLET1_R, 189.96275502, 80.03724498)
            Line((-FILLET1_R * 0.145266773052, FILLET1_R * 0.82699203082), (0, 0))
            Line((0, 0), (FILLET1_R * 0.83965365145, 0))
        make_face()
    extrude(amount=45.982682572, mode=Mode.SUBTRACT)
    with BuildSketch(Plane(origin=(148.480775301, 32.793839815, -37.364817767), x_dir=(0, 0, 1), z_dir=(0, -1, 0))) as fillet1_piece_2:
        with BuildLine():
            CenterArc((FILLET1_R * 1.19175359259, FILLET1_R), FILLET1_R, 170, 100)
            Line((FILLET1_R * 0.206945839582, FILLET1_R * 1.17364817767), (0, 0))
            Line((0, 0), (FILLET1_R * 1.19175359259, 0))
        make_face()
    extrude(amount=63.58767963, mode=Mode.SUBTRACT)

    # Sketch18 → Cut-Extrude6 (cut)
    with BuildSketch(Plane(origin=(0, 3, 0), x_dir=(1, 0, 0), z_dir=(0, 1, 0))):
        with Locations(Location((138.480775301, 25.447281841, 0), (0, 0, 270))):
            Circle(SKETCH18_R)
        with Locations(Location((119.473985668, 22.095872012, 0), (0, 0, 270))):
            Circle(SKETCH18_R)
        with Locations(Location((110.610715891, 20.533038413, 0), (0, 0, 270))):
            Circle(SKETCH18_R)
        with Locations(Location((129.617505524, 23.884448242, 0), (0, 0, 270))):
            Circle(SKETCH18_R)
    extrude(amount=-CUT_EXTRUDE6_DEPTH, mode=Mode.SUBTRACT)


solid = part_2.part
